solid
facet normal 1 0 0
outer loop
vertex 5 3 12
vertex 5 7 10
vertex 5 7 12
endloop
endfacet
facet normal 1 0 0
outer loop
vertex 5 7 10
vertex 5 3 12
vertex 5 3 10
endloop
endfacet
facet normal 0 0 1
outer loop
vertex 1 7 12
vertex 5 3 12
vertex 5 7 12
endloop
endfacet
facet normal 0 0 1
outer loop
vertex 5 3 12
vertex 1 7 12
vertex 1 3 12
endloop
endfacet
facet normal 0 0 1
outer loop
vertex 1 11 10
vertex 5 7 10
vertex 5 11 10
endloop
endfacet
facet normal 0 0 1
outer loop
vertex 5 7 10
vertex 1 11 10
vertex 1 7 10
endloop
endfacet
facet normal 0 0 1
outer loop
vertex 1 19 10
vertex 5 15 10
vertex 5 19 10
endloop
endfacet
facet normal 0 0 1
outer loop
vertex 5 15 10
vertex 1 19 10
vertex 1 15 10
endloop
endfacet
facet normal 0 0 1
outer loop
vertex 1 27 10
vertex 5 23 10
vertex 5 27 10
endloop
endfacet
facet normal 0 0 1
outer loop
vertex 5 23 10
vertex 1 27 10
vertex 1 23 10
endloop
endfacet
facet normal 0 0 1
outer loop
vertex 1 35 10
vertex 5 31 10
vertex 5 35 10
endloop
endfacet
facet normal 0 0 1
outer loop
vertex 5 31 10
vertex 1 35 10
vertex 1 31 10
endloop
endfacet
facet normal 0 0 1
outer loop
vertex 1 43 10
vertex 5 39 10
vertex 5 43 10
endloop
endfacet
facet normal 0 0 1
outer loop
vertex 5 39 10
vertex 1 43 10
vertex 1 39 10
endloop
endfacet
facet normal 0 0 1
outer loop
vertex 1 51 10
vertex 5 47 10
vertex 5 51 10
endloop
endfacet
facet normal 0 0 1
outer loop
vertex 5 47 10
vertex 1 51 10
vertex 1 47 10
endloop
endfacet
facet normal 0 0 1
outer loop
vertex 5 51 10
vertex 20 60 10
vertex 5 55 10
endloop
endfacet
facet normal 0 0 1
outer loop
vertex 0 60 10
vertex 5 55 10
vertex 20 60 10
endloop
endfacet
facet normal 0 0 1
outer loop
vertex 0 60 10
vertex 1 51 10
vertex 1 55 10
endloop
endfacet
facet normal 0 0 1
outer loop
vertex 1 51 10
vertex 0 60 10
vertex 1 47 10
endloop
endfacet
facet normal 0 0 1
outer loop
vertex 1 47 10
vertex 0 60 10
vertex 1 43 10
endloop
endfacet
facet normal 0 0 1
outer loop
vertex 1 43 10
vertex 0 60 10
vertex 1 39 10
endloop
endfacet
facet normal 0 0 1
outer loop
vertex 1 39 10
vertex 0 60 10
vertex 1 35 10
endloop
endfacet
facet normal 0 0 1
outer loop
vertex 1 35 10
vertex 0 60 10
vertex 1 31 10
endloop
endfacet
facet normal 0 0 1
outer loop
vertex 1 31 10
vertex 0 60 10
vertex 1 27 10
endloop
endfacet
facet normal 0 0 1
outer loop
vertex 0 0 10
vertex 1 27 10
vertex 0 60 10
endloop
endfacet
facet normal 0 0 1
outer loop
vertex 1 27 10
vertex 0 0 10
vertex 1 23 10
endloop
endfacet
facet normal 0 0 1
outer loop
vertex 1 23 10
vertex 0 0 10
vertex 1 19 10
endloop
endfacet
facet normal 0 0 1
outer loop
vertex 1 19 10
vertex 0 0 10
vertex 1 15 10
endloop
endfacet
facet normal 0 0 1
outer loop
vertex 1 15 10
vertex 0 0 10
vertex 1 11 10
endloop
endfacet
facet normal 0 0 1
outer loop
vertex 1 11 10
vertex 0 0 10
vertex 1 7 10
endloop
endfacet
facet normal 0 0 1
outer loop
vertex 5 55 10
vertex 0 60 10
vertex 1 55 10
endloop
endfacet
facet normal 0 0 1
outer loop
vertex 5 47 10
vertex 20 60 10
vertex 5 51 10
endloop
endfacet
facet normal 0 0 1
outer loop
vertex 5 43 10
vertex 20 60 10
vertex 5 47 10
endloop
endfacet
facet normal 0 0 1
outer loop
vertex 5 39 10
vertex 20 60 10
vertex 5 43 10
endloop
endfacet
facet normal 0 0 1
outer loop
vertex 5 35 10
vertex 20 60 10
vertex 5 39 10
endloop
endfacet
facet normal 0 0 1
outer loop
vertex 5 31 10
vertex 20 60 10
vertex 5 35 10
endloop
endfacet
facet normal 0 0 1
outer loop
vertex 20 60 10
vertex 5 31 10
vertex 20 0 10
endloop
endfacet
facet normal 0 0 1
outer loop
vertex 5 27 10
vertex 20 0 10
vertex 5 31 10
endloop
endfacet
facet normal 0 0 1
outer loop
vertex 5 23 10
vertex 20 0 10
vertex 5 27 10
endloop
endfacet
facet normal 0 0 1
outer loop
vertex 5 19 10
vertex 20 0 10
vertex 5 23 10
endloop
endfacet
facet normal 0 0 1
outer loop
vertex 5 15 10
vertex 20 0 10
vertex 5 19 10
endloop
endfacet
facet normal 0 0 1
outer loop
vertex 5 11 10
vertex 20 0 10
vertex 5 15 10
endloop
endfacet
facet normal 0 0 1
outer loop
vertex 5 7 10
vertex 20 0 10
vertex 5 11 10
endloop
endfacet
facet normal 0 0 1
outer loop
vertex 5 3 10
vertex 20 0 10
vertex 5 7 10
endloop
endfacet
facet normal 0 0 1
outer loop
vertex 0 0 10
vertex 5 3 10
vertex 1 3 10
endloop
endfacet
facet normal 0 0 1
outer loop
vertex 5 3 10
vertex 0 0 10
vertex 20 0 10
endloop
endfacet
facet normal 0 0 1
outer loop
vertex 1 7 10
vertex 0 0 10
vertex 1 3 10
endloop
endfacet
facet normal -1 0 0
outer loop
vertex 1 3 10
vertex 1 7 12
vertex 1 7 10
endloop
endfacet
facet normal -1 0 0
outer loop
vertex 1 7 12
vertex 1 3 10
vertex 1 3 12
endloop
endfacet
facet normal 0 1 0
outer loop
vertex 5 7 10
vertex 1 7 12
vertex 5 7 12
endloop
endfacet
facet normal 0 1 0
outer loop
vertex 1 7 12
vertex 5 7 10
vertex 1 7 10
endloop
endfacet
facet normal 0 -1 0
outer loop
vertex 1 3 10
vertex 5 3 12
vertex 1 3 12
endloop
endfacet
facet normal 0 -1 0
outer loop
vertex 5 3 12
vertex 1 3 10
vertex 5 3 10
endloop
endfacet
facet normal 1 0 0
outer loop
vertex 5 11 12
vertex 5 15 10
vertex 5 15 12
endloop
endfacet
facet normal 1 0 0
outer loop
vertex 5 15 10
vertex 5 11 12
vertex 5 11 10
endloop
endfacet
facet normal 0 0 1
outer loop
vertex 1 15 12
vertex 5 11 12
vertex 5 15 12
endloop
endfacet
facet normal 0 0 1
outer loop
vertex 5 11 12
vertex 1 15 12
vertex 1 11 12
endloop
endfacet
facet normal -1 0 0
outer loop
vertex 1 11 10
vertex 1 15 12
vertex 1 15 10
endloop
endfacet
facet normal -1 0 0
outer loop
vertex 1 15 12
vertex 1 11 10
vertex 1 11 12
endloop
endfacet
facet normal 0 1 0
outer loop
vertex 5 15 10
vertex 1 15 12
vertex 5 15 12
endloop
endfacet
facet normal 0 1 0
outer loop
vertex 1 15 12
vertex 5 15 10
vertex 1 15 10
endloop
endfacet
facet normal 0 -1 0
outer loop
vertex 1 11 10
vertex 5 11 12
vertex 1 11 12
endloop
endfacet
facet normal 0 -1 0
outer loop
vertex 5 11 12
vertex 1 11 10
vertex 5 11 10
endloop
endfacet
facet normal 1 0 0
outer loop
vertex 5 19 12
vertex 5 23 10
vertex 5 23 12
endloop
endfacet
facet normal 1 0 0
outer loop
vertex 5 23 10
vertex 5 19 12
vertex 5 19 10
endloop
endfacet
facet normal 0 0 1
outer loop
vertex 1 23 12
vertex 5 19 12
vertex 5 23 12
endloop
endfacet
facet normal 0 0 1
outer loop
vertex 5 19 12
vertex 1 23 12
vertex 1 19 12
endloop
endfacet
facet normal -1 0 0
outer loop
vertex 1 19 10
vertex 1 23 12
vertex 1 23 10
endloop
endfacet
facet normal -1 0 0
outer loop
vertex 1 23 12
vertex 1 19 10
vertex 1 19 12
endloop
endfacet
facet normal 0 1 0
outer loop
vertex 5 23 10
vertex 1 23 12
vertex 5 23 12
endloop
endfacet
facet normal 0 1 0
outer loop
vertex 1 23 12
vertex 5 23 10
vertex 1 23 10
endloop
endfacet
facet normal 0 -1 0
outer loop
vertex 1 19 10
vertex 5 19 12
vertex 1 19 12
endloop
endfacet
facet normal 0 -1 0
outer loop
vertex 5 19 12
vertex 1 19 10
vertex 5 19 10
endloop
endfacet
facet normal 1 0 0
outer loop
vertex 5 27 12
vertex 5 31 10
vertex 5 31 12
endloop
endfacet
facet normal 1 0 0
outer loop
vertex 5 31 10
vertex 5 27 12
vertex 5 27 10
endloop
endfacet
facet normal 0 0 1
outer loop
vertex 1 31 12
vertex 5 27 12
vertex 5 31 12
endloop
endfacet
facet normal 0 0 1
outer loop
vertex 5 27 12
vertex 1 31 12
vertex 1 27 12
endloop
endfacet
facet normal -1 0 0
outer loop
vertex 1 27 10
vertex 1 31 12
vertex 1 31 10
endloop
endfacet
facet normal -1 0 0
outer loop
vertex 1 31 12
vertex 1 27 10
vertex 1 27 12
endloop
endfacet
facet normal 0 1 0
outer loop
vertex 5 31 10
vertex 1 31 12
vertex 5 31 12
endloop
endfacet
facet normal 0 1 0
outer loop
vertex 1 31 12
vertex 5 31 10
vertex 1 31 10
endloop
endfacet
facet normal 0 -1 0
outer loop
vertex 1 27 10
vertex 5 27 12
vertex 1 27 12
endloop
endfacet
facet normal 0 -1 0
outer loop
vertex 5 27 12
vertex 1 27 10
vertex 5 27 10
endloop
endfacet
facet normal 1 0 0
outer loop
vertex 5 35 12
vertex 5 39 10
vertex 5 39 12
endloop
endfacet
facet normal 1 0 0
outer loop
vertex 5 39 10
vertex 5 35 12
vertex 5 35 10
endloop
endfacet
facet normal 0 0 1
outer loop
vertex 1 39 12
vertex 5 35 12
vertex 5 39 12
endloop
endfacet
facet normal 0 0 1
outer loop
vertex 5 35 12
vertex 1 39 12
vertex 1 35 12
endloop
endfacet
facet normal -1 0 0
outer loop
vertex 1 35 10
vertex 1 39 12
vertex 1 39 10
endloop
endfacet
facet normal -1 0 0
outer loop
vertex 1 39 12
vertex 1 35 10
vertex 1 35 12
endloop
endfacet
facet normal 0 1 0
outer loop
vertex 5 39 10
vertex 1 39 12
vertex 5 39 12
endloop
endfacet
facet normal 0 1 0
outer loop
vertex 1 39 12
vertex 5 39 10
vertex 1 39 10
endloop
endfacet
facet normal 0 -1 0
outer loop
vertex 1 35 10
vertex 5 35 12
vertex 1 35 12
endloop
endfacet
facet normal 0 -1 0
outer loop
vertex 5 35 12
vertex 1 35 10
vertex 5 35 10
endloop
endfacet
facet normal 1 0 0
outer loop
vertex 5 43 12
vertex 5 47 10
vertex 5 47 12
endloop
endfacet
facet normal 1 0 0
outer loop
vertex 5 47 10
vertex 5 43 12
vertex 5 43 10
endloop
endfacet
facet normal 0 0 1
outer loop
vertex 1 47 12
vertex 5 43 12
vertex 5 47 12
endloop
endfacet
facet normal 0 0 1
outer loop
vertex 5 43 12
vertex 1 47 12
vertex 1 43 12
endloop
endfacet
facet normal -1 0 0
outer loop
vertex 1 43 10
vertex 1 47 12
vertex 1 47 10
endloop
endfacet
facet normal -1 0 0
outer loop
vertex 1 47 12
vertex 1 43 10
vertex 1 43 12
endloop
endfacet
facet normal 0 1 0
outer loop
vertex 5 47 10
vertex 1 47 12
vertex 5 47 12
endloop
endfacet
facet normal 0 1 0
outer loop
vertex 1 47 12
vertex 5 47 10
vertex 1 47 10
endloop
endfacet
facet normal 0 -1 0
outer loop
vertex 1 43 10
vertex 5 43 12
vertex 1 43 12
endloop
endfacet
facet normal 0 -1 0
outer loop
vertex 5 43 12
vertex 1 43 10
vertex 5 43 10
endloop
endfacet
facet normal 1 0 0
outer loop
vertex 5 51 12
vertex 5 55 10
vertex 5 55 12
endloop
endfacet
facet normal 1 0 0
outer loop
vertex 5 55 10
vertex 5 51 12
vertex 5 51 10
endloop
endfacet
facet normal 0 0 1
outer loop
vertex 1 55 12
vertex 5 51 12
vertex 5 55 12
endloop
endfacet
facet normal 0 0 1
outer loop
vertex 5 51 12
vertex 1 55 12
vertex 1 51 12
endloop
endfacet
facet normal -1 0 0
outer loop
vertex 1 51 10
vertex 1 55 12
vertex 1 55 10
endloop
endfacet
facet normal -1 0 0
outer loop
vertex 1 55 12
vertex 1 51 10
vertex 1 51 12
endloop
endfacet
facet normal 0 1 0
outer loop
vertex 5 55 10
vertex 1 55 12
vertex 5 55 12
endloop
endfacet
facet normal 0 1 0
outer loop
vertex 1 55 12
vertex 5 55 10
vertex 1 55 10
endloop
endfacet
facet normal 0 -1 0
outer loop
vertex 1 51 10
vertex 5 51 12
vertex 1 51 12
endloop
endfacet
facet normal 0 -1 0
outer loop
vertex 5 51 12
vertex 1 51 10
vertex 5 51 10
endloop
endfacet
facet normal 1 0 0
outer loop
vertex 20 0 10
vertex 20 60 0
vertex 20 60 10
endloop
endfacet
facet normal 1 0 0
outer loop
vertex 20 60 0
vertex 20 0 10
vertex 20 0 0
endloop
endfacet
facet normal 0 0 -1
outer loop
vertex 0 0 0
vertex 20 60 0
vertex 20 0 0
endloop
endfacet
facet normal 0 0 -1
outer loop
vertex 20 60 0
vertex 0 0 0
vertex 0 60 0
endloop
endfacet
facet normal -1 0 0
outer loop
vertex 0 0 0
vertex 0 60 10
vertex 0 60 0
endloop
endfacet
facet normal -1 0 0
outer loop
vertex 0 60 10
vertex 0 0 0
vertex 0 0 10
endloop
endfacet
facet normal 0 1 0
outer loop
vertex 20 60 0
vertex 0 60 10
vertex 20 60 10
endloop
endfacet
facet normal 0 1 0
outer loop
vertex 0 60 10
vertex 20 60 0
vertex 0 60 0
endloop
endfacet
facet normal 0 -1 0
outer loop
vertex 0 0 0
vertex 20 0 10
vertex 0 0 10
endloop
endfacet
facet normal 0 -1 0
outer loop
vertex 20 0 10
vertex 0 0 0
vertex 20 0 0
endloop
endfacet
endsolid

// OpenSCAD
cube([20, 60, 10]);
for(i=[0:6]){
    translate([1, 3 + 8 * i, 10]){
        cube([4, 4, 2]);
    }
}
